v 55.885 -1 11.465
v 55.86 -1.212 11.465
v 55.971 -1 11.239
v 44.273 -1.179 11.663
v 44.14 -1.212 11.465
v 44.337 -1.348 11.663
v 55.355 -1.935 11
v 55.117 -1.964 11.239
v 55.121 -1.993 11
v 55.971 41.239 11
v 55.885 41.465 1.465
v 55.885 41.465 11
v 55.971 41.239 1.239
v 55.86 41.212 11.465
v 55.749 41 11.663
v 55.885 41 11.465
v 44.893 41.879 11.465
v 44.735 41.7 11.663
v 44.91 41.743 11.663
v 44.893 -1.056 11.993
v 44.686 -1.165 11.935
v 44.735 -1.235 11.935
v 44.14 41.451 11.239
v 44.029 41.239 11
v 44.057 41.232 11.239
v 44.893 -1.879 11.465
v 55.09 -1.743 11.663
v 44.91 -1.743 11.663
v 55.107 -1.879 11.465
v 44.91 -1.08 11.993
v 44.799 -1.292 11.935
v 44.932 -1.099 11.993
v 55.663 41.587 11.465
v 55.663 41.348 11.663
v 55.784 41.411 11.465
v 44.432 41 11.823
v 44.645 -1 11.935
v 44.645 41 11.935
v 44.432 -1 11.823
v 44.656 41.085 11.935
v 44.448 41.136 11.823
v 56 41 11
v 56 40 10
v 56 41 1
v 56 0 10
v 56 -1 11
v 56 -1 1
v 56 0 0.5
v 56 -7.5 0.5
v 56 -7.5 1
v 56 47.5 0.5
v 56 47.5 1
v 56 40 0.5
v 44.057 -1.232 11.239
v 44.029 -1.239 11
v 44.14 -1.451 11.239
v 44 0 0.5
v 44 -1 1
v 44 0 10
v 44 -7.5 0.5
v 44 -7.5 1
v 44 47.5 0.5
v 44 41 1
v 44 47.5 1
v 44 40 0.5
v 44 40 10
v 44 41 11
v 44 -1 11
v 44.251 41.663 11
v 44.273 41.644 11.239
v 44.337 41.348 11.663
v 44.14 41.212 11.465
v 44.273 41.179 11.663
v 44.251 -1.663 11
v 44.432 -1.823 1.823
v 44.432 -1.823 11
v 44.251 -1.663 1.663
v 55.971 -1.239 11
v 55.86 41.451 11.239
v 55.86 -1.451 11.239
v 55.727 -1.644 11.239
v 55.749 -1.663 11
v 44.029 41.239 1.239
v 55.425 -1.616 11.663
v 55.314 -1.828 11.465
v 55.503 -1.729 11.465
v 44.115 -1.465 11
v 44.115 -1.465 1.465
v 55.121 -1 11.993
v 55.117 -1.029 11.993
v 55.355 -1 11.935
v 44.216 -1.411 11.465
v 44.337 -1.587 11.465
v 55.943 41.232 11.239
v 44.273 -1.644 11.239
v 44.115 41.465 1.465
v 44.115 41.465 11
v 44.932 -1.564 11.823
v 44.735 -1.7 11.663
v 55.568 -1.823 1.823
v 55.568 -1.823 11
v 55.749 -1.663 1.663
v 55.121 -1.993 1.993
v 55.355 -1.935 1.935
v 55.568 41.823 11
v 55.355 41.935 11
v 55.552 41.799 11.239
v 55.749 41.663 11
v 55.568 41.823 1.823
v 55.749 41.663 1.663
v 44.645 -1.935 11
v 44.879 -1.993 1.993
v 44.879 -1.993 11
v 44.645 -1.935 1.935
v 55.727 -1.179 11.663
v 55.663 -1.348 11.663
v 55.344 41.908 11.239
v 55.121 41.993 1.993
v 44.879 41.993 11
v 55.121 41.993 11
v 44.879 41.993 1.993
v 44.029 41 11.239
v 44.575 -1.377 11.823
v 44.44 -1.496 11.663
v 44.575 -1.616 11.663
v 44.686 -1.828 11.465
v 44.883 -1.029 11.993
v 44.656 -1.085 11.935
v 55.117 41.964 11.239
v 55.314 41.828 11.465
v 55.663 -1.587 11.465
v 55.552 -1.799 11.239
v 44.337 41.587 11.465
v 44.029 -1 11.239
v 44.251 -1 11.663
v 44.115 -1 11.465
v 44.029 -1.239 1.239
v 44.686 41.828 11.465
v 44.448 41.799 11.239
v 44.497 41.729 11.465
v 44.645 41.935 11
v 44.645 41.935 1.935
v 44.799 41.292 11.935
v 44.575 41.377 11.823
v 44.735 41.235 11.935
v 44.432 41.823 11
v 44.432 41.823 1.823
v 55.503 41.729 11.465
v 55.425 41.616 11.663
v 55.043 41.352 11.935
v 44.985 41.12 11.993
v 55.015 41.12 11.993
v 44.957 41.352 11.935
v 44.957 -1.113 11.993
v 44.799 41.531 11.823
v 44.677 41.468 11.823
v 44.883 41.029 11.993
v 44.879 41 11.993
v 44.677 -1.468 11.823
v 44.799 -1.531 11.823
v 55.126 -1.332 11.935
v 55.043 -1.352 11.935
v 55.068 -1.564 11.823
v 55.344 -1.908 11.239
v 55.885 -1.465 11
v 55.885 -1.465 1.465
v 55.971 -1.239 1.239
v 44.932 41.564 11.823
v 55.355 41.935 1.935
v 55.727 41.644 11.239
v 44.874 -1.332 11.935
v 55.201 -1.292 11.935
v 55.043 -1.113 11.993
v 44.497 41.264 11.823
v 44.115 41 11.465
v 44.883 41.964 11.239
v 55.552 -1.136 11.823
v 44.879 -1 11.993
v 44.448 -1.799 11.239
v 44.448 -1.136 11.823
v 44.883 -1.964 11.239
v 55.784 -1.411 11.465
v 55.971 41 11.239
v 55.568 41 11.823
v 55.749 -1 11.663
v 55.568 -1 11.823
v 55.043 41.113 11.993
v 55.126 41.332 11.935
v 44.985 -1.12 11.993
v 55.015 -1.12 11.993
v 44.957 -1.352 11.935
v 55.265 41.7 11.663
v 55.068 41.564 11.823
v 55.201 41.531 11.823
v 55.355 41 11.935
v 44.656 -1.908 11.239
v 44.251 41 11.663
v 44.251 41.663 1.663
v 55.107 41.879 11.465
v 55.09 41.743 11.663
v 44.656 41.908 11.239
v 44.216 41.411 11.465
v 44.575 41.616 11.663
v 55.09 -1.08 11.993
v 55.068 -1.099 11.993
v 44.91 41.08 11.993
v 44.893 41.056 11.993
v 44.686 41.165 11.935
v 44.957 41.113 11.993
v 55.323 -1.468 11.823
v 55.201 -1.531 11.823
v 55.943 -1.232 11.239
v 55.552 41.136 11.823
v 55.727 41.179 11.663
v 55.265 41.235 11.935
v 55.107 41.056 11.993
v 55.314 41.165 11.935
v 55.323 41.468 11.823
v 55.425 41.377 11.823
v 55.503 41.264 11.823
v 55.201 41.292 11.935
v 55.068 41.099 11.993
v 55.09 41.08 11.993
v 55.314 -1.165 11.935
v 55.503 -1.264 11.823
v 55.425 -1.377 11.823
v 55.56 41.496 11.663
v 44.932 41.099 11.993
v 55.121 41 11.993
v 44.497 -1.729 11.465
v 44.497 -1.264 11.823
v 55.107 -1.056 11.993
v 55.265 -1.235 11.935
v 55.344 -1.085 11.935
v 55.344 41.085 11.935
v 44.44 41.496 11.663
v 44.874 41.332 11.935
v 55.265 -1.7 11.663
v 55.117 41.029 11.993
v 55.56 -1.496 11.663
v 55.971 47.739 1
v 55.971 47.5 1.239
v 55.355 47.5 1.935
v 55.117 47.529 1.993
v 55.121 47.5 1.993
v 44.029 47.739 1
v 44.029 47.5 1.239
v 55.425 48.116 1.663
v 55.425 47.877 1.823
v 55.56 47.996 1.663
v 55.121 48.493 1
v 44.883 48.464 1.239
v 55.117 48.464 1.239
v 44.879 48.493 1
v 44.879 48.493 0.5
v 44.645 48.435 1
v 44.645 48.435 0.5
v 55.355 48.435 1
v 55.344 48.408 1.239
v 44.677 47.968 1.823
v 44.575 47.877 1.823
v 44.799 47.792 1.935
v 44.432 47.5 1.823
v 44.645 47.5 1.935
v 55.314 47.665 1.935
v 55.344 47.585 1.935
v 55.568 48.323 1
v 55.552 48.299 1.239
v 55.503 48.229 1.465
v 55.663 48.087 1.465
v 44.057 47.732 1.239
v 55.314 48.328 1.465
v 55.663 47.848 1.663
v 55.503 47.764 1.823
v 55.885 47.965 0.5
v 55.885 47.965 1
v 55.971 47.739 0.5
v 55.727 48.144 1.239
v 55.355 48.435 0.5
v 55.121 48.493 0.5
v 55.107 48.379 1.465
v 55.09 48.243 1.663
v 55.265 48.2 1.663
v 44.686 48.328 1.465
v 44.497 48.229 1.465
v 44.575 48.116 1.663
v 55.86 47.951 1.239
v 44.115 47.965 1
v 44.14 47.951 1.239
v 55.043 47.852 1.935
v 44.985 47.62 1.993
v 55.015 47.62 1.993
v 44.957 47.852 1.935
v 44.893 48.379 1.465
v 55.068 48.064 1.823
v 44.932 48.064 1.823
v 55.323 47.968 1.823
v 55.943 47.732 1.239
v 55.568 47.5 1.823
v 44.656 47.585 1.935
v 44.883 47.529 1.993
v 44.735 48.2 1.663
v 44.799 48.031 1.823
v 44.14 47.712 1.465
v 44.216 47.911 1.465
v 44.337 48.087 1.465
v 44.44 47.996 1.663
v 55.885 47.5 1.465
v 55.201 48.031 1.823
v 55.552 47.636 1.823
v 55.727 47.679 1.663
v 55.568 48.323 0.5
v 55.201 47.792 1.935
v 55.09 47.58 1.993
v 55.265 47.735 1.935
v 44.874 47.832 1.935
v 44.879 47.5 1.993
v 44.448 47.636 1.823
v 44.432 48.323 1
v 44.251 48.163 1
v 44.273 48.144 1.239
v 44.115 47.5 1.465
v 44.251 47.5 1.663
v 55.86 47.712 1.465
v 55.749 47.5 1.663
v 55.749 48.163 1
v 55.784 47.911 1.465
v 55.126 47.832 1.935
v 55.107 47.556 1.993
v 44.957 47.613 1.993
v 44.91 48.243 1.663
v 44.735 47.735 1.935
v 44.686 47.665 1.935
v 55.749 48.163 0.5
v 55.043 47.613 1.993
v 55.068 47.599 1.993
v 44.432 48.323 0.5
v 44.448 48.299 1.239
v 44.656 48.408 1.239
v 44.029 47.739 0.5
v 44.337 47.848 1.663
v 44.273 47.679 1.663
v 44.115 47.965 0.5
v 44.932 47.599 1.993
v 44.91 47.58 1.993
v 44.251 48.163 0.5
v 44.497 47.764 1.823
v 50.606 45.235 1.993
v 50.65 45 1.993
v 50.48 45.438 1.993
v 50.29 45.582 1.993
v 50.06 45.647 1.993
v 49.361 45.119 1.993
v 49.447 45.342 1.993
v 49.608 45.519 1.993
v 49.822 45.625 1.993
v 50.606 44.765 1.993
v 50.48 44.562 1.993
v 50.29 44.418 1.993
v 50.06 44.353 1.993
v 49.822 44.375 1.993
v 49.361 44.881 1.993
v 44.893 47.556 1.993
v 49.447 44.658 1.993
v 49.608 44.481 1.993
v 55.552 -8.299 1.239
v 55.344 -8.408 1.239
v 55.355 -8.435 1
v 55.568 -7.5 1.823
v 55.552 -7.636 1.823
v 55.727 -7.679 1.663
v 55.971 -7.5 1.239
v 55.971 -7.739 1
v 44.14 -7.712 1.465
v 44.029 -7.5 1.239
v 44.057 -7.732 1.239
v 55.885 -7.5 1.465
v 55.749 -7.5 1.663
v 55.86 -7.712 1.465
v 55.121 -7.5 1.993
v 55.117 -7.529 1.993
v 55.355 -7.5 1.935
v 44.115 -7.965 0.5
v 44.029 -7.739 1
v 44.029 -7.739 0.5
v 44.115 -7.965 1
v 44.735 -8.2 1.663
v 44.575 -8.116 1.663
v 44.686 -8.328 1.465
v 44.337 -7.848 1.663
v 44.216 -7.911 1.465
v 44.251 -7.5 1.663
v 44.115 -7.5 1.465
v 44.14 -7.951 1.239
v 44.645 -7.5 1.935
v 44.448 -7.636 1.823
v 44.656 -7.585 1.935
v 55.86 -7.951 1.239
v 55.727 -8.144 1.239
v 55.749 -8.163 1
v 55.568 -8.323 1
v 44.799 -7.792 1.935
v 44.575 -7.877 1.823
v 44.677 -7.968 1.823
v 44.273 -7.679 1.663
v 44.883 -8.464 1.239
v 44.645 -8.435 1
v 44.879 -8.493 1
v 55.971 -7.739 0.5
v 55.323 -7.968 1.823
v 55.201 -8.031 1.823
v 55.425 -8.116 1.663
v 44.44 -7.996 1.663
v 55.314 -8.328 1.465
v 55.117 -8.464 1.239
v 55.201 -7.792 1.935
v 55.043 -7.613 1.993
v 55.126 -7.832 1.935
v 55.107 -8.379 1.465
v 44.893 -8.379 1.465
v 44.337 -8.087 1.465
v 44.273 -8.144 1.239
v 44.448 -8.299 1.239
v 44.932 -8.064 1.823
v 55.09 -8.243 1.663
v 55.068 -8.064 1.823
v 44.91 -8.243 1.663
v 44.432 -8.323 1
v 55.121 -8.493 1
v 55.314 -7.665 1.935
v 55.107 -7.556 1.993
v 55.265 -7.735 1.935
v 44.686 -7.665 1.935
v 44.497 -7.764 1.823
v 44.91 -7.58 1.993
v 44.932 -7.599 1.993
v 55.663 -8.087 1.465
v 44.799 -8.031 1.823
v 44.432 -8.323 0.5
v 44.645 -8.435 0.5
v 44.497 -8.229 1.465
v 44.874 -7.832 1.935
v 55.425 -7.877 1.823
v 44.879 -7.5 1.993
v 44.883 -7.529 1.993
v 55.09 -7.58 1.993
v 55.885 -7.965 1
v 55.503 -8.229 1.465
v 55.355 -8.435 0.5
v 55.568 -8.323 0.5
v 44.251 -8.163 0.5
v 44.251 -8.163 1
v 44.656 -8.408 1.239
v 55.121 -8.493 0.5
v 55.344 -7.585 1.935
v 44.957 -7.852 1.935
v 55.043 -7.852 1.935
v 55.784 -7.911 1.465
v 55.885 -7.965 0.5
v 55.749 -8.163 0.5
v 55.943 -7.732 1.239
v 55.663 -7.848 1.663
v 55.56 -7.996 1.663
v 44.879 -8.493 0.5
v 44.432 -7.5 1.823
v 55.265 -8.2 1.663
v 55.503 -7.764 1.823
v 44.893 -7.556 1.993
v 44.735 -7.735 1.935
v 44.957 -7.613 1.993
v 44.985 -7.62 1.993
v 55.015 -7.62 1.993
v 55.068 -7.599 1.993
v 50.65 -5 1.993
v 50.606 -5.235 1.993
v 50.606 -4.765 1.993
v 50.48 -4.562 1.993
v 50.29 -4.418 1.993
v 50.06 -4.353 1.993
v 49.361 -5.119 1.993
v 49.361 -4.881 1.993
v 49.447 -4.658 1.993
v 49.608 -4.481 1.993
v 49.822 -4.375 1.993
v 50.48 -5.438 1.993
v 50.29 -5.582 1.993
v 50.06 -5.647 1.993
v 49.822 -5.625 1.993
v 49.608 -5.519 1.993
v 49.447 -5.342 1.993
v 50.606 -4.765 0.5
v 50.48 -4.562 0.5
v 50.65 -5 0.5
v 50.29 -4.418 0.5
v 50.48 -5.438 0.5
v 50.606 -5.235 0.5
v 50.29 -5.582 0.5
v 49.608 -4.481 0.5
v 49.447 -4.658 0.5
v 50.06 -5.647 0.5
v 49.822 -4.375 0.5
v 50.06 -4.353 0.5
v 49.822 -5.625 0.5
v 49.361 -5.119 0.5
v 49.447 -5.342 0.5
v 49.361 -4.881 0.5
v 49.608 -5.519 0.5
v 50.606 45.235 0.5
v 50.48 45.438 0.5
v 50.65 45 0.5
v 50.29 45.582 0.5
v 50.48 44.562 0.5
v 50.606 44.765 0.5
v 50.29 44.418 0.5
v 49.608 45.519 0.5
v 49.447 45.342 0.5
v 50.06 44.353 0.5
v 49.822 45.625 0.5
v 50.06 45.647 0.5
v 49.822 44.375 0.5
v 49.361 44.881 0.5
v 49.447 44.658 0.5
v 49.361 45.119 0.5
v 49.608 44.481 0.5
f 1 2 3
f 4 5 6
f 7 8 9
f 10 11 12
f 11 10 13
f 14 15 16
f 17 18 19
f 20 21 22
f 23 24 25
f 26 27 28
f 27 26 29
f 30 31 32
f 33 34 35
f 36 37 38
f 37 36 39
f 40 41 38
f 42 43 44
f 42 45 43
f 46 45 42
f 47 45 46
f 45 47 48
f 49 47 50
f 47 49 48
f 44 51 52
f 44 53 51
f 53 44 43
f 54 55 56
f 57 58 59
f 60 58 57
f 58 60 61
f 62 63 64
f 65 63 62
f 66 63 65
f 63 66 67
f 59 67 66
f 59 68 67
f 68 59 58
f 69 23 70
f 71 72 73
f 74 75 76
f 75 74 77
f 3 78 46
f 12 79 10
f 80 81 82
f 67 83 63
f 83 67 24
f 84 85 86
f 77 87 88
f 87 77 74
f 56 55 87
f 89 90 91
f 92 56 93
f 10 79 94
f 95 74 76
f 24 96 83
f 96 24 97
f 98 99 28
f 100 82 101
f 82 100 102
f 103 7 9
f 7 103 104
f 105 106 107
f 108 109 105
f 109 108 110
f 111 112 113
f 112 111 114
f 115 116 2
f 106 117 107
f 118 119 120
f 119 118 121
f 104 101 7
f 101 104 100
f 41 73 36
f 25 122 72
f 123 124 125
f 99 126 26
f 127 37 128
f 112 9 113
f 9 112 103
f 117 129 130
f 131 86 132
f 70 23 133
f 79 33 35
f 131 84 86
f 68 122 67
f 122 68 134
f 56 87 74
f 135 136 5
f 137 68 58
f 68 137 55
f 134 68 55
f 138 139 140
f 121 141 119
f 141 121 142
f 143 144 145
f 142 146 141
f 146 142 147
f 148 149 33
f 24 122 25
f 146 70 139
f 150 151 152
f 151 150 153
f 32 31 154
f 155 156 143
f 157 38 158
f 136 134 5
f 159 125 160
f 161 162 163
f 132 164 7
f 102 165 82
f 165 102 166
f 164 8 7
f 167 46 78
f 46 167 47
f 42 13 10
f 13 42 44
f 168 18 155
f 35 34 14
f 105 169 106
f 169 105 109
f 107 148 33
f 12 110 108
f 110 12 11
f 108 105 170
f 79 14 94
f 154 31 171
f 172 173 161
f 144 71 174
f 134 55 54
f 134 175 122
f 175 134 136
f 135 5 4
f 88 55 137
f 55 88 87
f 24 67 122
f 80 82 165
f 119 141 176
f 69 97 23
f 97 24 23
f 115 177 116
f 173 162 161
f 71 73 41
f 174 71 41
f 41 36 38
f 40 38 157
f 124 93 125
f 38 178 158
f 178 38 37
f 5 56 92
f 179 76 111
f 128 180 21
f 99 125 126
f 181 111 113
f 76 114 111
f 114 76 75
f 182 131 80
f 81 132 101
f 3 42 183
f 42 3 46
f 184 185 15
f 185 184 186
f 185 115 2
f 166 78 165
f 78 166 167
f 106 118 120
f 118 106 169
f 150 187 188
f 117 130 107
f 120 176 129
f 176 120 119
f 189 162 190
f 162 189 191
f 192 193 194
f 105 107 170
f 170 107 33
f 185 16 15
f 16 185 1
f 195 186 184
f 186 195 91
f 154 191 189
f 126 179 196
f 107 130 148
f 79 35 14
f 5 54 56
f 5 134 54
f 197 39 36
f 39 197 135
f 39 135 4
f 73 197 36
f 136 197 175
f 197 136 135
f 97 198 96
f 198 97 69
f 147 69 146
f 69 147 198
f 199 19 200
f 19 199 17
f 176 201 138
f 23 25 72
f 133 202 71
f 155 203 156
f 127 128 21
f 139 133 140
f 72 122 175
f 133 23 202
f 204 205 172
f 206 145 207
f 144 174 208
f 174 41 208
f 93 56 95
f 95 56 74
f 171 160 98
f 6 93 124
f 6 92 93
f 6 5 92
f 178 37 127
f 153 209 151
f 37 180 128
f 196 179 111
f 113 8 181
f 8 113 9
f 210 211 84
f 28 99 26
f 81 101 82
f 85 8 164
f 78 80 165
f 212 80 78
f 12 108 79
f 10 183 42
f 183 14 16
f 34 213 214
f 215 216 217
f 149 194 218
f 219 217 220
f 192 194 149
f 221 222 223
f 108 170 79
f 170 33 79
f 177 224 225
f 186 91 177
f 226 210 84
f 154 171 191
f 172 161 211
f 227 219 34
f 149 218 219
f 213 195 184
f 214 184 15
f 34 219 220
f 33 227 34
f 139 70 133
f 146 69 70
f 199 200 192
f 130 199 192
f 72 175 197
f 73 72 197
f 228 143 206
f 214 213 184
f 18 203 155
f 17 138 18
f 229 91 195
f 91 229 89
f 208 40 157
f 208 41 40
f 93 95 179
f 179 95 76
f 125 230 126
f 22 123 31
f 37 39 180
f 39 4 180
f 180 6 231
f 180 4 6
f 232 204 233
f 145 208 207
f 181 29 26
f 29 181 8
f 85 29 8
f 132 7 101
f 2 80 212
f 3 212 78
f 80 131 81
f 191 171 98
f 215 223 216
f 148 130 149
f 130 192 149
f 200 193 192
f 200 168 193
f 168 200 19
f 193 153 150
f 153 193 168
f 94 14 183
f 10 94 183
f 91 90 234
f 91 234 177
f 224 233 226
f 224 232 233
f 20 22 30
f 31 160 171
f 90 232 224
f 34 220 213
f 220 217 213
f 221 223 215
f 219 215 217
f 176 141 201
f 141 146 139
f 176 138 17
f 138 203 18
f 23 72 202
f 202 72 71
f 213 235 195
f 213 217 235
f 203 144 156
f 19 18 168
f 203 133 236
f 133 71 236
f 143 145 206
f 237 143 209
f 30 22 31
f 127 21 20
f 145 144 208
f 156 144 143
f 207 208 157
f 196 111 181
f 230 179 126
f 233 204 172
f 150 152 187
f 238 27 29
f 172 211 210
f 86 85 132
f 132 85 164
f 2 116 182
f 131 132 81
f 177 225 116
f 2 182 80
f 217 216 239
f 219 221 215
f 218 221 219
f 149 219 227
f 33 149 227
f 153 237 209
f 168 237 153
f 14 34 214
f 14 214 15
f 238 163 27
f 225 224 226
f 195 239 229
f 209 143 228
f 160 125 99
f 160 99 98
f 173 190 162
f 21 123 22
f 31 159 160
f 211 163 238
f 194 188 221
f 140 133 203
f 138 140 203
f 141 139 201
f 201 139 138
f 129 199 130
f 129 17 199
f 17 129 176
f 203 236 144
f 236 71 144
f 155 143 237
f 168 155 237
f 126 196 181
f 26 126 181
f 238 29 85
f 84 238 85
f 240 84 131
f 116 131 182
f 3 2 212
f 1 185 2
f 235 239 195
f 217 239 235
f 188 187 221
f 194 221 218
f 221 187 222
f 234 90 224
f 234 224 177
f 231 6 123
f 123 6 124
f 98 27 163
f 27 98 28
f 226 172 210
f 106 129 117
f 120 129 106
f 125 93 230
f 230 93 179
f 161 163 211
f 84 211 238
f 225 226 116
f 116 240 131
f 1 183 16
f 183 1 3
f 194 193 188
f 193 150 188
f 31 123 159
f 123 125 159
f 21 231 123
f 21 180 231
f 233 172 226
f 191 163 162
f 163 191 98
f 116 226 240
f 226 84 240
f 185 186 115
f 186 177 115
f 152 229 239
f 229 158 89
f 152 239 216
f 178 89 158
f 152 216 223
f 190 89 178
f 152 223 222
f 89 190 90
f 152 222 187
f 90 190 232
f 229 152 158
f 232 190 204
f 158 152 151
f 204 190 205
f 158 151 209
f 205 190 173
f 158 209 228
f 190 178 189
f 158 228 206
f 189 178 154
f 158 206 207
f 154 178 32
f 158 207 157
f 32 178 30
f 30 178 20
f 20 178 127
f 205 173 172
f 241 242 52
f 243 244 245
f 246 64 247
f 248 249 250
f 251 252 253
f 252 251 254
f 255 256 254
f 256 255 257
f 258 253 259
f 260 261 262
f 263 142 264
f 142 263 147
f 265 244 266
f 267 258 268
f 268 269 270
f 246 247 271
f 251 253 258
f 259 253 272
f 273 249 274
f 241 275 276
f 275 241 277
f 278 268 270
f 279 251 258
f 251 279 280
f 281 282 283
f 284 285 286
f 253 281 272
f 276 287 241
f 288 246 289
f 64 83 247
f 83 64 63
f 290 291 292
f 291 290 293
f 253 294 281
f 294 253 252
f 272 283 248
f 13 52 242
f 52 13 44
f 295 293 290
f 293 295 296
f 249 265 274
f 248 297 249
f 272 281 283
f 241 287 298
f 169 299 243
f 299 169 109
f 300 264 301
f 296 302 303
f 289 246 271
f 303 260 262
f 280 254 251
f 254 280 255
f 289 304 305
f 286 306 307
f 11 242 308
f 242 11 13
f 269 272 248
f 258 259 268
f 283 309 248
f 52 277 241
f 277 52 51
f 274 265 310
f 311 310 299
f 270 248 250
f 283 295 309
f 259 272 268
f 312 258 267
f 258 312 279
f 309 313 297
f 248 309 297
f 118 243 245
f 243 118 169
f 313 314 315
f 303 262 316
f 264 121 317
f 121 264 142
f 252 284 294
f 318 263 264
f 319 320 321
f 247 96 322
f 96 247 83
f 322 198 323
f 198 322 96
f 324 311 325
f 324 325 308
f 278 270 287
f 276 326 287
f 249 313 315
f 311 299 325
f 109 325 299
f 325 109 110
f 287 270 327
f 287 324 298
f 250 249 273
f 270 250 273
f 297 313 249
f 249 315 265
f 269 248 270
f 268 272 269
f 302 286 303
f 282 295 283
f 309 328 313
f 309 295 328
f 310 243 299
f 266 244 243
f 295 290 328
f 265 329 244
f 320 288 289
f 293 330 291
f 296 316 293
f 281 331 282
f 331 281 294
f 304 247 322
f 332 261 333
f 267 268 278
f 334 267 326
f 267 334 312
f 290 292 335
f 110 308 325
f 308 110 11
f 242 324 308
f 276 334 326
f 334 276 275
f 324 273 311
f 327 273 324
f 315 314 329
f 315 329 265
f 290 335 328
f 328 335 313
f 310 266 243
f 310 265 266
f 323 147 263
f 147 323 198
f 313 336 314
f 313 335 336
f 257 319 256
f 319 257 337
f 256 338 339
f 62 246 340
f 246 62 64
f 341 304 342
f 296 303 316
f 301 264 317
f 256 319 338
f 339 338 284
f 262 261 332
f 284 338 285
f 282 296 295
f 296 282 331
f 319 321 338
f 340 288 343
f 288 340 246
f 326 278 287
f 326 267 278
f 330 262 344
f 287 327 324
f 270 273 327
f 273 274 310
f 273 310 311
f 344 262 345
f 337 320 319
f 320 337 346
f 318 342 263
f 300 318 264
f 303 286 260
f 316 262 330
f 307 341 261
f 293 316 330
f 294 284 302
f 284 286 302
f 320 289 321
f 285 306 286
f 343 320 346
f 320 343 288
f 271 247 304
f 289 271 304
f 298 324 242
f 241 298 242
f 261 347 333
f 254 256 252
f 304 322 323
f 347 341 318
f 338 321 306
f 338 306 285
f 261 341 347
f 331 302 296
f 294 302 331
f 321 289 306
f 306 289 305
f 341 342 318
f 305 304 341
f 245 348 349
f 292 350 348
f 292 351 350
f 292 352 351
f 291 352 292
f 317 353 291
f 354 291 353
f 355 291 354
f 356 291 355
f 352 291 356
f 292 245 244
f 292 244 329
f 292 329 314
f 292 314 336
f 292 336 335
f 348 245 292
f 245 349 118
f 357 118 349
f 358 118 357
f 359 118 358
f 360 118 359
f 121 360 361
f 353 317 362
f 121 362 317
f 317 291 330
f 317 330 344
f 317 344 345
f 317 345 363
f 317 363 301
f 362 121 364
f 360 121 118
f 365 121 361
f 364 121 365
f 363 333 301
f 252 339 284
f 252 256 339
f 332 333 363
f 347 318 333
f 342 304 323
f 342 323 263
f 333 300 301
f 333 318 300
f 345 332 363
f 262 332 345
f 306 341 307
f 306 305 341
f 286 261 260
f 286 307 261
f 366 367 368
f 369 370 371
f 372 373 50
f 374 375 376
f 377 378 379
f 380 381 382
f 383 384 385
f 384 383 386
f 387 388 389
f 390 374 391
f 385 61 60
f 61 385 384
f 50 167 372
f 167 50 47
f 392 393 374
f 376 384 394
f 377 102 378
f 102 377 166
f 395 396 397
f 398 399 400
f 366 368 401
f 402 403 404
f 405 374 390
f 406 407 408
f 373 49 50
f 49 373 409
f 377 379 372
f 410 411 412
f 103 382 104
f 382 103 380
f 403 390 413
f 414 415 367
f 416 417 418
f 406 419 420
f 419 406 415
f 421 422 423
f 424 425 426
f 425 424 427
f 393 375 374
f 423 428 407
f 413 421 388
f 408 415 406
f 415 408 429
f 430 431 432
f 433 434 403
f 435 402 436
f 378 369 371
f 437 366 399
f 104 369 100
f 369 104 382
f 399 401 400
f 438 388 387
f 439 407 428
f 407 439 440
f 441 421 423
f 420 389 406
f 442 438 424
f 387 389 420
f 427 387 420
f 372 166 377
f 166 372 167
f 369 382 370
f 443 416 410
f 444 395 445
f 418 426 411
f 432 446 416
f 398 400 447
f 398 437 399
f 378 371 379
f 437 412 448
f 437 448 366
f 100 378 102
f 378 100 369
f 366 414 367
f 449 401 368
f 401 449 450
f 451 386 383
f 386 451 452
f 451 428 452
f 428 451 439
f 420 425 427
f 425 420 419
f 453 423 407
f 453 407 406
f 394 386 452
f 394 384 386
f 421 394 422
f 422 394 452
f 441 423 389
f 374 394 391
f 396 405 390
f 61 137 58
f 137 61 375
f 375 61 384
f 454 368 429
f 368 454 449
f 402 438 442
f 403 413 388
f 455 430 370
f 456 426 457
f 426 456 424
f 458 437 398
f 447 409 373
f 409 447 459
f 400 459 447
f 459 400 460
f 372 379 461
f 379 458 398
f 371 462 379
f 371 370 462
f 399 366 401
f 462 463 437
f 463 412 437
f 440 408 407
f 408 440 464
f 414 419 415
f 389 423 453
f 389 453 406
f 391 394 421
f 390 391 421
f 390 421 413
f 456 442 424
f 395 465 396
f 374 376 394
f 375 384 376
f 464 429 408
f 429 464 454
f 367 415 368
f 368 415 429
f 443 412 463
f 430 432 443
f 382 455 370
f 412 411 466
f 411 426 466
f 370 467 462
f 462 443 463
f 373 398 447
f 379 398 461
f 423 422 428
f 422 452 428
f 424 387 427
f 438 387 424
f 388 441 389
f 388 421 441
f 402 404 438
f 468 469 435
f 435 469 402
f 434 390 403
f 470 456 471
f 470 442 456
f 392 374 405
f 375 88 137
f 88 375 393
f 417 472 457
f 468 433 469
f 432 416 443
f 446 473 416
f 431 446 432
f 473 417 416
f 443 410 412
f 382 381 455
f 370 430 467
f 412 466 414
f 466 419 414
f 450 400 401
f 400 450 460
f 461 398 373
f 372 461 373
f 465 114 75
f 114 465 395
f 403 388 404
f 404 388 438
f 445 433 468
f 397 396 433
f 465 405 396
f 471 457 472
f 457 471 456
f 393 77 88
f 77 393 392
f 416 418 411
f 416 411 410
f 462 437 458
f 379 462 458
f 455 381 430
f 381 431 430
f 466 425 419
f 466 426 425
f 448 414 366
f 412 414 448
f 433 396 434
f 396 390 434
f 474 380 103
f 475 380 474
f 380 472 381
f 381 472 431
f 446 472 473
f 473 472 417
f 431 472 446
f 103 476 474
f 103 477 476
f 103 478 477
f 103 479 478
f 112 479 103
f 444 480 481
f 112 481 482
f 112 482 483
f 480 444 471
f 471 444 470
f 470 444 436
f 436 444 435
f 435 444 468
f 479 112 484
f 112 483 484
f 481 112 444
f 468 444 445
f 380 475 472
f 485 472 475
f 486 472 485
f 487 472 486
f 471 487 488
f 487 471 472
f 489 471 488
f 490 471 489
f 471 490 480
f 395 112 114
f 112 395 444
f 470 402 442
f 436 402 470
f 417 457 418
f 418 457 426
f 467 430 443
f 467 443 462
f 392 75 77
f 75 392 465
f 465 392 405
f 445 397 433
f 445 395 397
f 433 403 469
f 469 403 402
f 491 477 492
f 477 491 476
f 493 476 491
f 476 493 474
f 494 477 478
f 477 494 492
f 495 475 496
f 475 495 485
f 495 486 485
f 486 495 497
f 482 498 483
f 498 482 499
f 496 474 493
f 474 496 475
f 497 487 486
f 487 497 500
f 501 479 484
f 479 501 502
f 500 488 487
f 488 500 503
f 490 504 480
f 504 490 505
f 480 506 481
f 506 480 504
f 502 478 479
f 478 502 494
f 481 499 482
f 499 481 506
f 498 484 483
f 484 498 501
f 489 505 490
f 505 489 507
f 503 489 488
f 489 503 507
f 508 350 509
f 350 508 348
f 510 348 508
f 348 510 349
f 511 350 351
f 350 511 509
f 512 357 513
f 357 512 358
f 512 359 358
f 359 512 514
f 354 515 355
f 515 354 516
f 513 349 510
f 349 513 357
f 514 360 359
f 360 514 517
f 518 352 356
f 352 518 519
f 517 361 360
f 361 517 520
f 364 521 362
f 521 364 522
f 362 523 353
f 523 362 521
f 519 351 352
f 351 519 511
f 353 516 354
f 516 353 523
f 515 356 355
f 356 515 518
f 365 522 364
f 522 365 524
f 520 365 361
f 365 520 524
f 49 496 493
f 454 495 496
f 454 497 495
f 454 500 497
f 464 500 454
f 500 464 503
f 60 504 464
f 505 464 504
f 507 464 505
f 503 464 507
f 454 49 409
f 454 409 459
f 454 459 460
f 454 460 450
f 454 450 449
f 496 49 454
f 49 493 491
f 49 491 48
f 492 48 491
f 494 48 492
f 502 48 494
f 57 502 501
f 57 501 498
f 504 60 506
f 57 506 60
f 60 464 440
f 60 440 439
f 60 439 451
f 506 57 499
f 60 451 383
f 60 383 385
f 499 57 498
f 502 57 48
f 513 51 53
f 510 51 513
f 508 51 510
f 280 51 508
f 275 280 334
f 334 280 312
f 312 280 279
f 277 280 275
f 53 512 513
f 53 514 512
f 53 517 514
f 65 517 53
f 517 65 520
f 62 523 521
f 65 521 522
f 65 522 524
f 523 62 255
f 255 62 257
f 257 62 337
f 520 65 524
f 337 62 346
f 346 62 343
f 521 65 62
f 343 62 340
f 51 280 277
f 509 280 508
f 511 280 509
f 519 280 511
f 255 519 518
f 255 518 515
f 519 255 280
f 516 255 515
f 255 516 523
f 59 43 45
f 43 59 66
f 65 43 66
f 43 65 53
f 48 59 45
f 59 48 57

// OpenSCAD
$fa = $preview ? 8 : 4;
$fs = $preview ? 3 : 0.25;

screw_d = 1.3;
box = [100,40,10];

thickness = 2;
roundung = 1;
length = 10;

difference()
{
	translate([(box.x-length)/2, -(thickness-roundung), 0])
	{
		difference()
		{
			minkowski(){
				union()
				{
					cube([length, box.y+2*(thickness-roundung), box.z+(thickness-roundung)]);
					translate([0, -3*thickness-roundung/2, 0])
						cube([length, box.y+8*thickness-roundung, (thickness-roundung)]);
				}
				sphere(r=roundung);
			};
			#translate([length/2, -2*thickness, -25]) cylinder(d=screw_d, h = 50);
			#translate([length/2, box.y+3*thickness, -25]) cylinder(d=screw_d, h = 50);
			translate([-50, -thickness*5, -49.5])cube([100, 200, 50]);
		}
	}
	#cube(box);
}
